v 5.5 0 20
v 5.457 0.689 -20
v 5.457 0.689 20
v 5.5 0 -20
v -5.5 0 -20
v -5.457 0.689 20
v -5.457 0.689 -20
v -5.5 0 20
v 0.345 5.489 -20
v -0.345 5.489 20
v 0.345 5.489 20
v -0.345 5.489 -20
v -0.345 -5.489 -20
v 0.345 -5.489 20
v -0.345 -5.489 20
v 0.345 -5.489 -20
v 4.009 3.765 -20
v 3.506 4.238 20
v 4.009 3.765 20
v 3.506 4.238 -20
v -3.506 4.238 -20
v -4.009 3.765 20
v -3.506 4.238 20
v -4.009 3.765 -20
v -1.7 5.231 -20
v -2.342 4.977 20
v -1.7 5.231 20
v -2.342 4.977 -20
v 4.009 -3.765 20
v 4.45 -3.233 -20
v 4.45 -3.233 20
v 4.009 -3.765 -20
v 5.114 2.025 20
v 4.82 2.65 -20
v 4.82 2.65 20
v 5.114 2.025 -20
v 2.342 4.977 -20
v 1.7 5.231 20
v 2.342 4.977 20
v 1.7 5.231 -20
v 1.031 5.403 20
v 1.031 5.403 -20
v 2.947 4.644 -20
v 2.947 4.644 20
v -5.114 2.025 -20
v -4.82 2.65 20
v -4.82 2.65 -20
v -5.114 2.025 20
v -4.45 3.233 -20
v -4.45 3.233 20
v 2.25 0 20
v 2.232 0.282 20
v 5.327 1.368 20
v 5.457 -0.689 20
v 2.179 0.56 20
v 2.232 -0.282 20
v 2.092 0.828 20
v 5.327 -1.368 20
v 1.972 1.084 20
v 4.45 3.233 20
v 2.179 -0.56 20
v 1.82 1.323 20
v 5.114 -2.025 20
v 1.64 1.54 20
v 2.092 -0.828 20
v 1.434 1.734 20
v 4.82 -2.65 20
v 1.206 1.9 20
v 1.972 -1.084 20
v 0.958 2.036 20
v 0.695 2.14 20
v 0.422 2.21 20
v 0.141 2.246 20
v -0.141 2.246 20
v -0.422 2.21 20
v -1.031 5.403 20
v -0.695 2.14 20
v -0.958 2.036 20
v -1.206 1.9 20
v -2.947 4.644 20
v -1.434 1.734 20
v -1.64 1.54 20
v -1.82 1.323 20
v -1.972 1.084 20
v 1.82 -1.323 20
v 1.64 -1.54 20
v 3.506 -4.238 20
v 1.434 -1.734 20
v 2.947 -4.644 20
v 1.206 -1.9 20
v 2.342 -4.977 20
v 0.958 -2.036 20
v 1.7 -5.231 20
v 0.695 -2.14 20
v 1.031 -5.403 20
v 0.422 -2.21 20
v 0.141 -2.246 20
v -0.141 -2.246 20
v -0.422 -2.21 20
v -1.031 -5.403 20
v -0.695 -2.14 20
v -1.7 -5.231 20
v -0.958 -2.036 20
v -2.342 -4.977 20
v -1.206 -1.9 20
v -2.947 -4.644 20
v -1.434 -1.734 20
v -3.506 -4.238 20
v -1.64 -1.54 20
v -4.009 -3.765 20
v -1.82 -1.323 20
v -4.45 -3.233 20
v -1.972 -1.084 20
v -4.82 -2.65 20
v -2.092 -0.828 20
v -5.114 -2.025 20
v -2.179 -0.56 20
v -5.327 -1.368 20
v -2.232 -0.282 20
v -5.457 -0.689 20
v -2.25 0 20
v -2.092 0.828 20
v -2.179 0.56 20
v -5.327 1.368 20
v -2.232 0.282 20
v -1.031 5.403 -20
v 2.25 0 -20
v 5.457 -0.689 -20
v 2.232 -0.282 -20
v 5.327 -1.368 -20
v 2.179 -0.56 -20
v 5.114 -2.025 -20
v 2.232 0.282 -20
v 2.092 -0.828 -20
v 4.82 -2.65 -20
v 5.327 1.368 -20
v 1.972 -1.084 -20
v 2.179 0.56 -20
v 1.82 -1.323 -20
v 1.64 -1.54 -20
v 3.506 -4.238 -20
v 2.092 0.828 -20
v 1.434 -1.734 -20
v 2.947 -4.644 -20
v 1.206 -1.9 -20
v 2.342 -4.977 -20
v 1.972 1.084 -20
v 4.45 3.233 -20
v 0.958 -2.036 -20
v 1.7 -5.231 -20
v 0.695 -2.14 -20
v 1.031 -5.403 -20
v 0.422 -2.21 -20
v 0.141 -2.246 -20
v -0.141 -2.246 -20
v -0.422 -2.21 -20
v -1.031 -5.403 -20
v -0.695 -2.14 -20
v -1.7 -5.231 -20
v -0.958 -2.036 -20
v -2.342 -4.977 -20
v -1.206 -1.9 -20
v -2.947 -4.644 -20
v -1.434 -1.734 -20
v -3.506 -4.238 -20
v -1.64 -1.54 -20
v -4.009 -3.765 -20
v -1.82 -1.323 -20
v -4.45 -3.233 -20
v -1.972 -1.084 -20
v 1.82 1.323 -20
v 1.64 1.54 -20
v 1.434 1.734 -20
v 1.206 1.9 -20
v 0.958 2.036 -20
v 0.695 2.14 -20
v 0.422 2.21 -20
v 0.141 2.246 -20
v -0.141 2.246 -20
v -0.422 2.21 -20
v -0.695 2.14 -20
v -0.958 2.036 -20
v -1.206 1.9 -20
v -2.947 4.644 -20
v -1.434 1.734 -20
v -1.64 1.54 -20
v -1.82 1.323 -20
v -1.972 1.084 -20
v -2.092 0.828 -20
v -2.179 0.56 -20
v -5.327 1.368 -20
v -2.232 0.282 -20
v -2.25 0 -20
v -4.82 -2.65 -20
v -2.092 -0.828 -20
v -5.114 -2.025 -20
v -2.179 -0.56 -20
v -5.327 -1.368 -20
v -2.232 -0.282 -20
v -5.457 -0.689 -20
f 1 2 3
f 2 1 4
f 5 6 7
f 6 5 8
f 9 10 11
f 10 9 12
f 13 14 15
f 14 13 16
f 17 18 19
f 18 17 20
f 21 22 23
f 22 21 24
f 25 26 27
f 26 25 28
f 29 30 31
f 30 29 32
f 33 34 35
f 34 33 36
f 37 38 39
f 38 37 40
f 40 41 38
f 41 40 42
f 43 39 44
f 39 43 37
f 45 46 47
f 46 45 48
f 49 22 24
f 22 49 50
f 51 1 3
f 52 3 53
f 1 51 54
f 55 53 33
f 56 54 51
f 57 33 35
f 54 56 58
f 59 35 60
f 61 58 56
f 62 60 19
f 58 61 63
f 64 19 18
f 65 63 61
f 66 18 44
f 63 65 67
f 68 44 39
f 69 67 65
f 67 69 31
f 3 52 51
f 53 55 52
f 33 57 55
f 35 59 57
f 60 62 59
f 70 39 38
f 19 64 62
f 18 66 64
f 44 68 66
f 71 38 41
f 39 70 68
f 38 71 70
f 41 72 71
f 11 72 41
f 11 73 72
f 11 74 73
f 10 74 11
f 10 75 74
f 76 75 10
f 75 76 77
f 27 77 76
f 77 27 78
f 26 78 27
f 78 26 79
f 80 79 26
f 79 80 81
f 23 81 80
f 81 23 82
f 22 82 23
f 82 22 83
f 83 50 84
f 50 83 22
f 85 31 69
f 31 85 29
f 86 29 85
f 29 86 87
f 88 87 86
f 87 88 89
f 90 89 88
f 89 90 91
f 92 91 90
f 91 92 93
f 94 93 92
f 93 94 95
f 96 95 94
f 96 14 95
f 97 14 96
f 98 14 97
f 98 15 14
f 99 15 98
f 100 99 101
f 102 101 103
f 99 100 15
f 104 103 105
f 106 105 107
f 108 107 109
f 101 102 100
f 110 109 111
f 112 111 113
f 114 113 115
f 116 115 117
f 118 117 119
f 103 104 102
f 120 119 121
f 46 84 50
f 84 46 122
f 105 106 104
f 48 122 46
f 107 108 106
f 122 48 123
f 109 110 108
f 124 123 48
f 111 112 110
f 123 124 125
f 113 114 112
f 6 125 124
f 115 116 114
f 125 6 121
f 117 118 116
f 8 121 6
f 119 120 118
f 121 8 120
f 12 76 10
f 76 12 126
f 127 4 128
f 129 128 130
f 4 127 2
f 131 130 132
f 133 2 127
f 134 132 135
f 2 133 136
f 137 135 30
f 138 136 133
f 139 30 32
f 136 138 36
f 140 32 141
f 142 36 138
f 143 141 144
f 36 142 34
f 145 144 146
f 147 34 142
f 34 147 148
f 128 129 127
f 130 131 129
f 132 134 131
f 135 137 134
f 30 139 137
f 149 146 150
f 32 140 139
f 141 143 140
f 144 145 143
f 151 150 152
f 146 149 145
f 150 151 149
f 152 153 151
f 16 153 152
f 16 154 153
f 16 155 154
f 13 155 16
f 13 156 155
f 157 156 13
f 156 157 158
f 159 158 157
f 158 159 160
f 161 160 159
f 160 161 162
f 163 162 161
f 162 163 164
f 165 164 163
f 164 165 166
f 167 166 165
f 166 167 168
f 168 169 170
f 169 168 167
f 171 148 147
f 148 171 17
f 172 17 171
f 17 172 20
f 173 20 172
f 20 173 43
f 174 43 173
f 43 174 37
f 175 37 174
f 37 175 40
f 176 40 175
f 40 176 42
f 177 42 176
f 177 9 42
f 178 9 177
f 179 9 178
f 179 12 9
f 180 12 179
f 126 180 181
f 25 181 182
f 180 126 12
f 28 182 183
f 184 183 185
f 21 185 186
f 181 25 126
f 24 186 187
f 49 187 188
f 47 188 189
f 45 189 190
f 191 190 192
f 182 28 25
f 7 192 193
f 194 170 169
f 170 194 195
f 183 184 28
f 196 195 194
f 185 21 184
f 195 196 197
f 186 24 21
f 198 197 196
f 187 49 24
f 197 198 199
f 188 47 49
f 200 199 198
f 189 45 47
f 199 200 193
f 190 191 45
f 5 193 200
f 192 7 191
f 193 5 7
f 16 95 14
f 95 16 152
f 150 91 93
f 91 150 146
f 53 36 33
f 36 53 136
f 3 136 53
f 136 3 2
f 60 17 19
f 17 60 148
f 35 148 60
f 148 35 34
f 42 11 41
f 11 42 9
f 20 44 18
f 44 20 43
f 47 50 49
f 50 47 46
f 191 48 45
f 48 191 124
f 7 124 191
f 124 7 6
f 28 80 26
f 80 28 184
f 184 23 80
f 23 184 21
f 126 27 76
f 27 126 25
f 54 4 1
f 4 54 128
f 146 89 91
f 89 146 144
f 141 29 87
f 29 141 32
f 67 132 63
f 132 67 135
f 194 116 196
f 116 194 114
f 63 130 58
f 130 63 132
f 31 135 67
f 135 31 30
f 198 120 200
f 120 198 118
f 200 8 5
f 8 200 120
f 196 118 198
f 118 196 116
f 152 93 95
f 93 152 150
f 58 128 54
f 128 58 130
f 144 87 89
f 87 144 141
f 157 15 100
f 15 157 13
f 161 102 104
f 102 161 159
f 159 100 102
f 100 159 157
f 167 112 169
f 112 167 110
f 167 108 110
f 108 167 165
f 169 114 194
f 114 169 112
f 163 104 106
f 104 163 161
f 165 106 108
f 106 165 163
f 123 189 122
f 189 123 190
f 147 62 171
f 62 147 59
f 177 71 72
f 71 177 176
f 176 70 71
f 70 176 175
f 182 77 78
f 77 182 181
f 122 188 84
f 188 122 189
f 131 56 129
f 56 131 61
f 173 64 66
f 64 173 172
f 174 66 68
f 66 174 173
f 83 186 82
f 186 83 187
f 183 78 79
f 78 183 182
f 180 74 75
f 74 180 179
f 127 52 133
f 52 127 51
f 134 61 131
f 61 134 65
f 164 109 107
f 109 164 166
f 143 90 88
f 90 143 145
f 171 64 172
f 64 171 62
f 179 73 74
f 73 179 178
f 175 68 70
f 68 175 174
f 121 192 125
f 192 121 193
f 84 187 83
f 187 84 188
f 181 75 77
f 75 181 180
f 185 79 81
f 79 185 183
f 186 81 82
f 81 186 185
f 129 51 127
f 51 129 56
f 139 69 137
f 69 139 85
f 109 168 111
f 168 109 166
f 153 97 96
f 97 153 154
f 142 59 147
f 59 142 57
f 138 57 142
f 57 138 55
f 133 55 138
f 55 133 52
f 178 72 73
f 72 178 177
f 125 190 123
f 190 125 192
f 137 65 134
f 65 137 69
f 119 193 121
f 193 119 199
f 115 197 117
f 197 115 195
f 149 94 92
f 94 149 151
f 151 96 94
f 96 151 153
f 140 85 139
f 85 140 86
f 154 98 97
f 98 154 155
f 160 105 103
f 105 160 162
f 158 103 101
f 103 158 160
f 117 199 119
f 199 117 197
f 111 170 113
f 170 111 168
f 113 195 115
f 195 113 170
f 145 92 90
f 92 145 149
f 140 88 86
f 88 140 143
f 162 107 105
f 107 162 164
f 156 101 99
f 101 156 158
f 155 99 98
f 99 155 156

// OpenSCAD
$fn = 50;


difference() {
	union() {
		translate(v = [0, 0, -20.0000000000]) {
			cylinder(h = 40, r = 5.5000000000);
		}
	}
	union() {
		translate(v = [0, 0, -100.0000000000]) {
			cylinder(h = 200, r = 2.2500000000);
		}
	}
}
